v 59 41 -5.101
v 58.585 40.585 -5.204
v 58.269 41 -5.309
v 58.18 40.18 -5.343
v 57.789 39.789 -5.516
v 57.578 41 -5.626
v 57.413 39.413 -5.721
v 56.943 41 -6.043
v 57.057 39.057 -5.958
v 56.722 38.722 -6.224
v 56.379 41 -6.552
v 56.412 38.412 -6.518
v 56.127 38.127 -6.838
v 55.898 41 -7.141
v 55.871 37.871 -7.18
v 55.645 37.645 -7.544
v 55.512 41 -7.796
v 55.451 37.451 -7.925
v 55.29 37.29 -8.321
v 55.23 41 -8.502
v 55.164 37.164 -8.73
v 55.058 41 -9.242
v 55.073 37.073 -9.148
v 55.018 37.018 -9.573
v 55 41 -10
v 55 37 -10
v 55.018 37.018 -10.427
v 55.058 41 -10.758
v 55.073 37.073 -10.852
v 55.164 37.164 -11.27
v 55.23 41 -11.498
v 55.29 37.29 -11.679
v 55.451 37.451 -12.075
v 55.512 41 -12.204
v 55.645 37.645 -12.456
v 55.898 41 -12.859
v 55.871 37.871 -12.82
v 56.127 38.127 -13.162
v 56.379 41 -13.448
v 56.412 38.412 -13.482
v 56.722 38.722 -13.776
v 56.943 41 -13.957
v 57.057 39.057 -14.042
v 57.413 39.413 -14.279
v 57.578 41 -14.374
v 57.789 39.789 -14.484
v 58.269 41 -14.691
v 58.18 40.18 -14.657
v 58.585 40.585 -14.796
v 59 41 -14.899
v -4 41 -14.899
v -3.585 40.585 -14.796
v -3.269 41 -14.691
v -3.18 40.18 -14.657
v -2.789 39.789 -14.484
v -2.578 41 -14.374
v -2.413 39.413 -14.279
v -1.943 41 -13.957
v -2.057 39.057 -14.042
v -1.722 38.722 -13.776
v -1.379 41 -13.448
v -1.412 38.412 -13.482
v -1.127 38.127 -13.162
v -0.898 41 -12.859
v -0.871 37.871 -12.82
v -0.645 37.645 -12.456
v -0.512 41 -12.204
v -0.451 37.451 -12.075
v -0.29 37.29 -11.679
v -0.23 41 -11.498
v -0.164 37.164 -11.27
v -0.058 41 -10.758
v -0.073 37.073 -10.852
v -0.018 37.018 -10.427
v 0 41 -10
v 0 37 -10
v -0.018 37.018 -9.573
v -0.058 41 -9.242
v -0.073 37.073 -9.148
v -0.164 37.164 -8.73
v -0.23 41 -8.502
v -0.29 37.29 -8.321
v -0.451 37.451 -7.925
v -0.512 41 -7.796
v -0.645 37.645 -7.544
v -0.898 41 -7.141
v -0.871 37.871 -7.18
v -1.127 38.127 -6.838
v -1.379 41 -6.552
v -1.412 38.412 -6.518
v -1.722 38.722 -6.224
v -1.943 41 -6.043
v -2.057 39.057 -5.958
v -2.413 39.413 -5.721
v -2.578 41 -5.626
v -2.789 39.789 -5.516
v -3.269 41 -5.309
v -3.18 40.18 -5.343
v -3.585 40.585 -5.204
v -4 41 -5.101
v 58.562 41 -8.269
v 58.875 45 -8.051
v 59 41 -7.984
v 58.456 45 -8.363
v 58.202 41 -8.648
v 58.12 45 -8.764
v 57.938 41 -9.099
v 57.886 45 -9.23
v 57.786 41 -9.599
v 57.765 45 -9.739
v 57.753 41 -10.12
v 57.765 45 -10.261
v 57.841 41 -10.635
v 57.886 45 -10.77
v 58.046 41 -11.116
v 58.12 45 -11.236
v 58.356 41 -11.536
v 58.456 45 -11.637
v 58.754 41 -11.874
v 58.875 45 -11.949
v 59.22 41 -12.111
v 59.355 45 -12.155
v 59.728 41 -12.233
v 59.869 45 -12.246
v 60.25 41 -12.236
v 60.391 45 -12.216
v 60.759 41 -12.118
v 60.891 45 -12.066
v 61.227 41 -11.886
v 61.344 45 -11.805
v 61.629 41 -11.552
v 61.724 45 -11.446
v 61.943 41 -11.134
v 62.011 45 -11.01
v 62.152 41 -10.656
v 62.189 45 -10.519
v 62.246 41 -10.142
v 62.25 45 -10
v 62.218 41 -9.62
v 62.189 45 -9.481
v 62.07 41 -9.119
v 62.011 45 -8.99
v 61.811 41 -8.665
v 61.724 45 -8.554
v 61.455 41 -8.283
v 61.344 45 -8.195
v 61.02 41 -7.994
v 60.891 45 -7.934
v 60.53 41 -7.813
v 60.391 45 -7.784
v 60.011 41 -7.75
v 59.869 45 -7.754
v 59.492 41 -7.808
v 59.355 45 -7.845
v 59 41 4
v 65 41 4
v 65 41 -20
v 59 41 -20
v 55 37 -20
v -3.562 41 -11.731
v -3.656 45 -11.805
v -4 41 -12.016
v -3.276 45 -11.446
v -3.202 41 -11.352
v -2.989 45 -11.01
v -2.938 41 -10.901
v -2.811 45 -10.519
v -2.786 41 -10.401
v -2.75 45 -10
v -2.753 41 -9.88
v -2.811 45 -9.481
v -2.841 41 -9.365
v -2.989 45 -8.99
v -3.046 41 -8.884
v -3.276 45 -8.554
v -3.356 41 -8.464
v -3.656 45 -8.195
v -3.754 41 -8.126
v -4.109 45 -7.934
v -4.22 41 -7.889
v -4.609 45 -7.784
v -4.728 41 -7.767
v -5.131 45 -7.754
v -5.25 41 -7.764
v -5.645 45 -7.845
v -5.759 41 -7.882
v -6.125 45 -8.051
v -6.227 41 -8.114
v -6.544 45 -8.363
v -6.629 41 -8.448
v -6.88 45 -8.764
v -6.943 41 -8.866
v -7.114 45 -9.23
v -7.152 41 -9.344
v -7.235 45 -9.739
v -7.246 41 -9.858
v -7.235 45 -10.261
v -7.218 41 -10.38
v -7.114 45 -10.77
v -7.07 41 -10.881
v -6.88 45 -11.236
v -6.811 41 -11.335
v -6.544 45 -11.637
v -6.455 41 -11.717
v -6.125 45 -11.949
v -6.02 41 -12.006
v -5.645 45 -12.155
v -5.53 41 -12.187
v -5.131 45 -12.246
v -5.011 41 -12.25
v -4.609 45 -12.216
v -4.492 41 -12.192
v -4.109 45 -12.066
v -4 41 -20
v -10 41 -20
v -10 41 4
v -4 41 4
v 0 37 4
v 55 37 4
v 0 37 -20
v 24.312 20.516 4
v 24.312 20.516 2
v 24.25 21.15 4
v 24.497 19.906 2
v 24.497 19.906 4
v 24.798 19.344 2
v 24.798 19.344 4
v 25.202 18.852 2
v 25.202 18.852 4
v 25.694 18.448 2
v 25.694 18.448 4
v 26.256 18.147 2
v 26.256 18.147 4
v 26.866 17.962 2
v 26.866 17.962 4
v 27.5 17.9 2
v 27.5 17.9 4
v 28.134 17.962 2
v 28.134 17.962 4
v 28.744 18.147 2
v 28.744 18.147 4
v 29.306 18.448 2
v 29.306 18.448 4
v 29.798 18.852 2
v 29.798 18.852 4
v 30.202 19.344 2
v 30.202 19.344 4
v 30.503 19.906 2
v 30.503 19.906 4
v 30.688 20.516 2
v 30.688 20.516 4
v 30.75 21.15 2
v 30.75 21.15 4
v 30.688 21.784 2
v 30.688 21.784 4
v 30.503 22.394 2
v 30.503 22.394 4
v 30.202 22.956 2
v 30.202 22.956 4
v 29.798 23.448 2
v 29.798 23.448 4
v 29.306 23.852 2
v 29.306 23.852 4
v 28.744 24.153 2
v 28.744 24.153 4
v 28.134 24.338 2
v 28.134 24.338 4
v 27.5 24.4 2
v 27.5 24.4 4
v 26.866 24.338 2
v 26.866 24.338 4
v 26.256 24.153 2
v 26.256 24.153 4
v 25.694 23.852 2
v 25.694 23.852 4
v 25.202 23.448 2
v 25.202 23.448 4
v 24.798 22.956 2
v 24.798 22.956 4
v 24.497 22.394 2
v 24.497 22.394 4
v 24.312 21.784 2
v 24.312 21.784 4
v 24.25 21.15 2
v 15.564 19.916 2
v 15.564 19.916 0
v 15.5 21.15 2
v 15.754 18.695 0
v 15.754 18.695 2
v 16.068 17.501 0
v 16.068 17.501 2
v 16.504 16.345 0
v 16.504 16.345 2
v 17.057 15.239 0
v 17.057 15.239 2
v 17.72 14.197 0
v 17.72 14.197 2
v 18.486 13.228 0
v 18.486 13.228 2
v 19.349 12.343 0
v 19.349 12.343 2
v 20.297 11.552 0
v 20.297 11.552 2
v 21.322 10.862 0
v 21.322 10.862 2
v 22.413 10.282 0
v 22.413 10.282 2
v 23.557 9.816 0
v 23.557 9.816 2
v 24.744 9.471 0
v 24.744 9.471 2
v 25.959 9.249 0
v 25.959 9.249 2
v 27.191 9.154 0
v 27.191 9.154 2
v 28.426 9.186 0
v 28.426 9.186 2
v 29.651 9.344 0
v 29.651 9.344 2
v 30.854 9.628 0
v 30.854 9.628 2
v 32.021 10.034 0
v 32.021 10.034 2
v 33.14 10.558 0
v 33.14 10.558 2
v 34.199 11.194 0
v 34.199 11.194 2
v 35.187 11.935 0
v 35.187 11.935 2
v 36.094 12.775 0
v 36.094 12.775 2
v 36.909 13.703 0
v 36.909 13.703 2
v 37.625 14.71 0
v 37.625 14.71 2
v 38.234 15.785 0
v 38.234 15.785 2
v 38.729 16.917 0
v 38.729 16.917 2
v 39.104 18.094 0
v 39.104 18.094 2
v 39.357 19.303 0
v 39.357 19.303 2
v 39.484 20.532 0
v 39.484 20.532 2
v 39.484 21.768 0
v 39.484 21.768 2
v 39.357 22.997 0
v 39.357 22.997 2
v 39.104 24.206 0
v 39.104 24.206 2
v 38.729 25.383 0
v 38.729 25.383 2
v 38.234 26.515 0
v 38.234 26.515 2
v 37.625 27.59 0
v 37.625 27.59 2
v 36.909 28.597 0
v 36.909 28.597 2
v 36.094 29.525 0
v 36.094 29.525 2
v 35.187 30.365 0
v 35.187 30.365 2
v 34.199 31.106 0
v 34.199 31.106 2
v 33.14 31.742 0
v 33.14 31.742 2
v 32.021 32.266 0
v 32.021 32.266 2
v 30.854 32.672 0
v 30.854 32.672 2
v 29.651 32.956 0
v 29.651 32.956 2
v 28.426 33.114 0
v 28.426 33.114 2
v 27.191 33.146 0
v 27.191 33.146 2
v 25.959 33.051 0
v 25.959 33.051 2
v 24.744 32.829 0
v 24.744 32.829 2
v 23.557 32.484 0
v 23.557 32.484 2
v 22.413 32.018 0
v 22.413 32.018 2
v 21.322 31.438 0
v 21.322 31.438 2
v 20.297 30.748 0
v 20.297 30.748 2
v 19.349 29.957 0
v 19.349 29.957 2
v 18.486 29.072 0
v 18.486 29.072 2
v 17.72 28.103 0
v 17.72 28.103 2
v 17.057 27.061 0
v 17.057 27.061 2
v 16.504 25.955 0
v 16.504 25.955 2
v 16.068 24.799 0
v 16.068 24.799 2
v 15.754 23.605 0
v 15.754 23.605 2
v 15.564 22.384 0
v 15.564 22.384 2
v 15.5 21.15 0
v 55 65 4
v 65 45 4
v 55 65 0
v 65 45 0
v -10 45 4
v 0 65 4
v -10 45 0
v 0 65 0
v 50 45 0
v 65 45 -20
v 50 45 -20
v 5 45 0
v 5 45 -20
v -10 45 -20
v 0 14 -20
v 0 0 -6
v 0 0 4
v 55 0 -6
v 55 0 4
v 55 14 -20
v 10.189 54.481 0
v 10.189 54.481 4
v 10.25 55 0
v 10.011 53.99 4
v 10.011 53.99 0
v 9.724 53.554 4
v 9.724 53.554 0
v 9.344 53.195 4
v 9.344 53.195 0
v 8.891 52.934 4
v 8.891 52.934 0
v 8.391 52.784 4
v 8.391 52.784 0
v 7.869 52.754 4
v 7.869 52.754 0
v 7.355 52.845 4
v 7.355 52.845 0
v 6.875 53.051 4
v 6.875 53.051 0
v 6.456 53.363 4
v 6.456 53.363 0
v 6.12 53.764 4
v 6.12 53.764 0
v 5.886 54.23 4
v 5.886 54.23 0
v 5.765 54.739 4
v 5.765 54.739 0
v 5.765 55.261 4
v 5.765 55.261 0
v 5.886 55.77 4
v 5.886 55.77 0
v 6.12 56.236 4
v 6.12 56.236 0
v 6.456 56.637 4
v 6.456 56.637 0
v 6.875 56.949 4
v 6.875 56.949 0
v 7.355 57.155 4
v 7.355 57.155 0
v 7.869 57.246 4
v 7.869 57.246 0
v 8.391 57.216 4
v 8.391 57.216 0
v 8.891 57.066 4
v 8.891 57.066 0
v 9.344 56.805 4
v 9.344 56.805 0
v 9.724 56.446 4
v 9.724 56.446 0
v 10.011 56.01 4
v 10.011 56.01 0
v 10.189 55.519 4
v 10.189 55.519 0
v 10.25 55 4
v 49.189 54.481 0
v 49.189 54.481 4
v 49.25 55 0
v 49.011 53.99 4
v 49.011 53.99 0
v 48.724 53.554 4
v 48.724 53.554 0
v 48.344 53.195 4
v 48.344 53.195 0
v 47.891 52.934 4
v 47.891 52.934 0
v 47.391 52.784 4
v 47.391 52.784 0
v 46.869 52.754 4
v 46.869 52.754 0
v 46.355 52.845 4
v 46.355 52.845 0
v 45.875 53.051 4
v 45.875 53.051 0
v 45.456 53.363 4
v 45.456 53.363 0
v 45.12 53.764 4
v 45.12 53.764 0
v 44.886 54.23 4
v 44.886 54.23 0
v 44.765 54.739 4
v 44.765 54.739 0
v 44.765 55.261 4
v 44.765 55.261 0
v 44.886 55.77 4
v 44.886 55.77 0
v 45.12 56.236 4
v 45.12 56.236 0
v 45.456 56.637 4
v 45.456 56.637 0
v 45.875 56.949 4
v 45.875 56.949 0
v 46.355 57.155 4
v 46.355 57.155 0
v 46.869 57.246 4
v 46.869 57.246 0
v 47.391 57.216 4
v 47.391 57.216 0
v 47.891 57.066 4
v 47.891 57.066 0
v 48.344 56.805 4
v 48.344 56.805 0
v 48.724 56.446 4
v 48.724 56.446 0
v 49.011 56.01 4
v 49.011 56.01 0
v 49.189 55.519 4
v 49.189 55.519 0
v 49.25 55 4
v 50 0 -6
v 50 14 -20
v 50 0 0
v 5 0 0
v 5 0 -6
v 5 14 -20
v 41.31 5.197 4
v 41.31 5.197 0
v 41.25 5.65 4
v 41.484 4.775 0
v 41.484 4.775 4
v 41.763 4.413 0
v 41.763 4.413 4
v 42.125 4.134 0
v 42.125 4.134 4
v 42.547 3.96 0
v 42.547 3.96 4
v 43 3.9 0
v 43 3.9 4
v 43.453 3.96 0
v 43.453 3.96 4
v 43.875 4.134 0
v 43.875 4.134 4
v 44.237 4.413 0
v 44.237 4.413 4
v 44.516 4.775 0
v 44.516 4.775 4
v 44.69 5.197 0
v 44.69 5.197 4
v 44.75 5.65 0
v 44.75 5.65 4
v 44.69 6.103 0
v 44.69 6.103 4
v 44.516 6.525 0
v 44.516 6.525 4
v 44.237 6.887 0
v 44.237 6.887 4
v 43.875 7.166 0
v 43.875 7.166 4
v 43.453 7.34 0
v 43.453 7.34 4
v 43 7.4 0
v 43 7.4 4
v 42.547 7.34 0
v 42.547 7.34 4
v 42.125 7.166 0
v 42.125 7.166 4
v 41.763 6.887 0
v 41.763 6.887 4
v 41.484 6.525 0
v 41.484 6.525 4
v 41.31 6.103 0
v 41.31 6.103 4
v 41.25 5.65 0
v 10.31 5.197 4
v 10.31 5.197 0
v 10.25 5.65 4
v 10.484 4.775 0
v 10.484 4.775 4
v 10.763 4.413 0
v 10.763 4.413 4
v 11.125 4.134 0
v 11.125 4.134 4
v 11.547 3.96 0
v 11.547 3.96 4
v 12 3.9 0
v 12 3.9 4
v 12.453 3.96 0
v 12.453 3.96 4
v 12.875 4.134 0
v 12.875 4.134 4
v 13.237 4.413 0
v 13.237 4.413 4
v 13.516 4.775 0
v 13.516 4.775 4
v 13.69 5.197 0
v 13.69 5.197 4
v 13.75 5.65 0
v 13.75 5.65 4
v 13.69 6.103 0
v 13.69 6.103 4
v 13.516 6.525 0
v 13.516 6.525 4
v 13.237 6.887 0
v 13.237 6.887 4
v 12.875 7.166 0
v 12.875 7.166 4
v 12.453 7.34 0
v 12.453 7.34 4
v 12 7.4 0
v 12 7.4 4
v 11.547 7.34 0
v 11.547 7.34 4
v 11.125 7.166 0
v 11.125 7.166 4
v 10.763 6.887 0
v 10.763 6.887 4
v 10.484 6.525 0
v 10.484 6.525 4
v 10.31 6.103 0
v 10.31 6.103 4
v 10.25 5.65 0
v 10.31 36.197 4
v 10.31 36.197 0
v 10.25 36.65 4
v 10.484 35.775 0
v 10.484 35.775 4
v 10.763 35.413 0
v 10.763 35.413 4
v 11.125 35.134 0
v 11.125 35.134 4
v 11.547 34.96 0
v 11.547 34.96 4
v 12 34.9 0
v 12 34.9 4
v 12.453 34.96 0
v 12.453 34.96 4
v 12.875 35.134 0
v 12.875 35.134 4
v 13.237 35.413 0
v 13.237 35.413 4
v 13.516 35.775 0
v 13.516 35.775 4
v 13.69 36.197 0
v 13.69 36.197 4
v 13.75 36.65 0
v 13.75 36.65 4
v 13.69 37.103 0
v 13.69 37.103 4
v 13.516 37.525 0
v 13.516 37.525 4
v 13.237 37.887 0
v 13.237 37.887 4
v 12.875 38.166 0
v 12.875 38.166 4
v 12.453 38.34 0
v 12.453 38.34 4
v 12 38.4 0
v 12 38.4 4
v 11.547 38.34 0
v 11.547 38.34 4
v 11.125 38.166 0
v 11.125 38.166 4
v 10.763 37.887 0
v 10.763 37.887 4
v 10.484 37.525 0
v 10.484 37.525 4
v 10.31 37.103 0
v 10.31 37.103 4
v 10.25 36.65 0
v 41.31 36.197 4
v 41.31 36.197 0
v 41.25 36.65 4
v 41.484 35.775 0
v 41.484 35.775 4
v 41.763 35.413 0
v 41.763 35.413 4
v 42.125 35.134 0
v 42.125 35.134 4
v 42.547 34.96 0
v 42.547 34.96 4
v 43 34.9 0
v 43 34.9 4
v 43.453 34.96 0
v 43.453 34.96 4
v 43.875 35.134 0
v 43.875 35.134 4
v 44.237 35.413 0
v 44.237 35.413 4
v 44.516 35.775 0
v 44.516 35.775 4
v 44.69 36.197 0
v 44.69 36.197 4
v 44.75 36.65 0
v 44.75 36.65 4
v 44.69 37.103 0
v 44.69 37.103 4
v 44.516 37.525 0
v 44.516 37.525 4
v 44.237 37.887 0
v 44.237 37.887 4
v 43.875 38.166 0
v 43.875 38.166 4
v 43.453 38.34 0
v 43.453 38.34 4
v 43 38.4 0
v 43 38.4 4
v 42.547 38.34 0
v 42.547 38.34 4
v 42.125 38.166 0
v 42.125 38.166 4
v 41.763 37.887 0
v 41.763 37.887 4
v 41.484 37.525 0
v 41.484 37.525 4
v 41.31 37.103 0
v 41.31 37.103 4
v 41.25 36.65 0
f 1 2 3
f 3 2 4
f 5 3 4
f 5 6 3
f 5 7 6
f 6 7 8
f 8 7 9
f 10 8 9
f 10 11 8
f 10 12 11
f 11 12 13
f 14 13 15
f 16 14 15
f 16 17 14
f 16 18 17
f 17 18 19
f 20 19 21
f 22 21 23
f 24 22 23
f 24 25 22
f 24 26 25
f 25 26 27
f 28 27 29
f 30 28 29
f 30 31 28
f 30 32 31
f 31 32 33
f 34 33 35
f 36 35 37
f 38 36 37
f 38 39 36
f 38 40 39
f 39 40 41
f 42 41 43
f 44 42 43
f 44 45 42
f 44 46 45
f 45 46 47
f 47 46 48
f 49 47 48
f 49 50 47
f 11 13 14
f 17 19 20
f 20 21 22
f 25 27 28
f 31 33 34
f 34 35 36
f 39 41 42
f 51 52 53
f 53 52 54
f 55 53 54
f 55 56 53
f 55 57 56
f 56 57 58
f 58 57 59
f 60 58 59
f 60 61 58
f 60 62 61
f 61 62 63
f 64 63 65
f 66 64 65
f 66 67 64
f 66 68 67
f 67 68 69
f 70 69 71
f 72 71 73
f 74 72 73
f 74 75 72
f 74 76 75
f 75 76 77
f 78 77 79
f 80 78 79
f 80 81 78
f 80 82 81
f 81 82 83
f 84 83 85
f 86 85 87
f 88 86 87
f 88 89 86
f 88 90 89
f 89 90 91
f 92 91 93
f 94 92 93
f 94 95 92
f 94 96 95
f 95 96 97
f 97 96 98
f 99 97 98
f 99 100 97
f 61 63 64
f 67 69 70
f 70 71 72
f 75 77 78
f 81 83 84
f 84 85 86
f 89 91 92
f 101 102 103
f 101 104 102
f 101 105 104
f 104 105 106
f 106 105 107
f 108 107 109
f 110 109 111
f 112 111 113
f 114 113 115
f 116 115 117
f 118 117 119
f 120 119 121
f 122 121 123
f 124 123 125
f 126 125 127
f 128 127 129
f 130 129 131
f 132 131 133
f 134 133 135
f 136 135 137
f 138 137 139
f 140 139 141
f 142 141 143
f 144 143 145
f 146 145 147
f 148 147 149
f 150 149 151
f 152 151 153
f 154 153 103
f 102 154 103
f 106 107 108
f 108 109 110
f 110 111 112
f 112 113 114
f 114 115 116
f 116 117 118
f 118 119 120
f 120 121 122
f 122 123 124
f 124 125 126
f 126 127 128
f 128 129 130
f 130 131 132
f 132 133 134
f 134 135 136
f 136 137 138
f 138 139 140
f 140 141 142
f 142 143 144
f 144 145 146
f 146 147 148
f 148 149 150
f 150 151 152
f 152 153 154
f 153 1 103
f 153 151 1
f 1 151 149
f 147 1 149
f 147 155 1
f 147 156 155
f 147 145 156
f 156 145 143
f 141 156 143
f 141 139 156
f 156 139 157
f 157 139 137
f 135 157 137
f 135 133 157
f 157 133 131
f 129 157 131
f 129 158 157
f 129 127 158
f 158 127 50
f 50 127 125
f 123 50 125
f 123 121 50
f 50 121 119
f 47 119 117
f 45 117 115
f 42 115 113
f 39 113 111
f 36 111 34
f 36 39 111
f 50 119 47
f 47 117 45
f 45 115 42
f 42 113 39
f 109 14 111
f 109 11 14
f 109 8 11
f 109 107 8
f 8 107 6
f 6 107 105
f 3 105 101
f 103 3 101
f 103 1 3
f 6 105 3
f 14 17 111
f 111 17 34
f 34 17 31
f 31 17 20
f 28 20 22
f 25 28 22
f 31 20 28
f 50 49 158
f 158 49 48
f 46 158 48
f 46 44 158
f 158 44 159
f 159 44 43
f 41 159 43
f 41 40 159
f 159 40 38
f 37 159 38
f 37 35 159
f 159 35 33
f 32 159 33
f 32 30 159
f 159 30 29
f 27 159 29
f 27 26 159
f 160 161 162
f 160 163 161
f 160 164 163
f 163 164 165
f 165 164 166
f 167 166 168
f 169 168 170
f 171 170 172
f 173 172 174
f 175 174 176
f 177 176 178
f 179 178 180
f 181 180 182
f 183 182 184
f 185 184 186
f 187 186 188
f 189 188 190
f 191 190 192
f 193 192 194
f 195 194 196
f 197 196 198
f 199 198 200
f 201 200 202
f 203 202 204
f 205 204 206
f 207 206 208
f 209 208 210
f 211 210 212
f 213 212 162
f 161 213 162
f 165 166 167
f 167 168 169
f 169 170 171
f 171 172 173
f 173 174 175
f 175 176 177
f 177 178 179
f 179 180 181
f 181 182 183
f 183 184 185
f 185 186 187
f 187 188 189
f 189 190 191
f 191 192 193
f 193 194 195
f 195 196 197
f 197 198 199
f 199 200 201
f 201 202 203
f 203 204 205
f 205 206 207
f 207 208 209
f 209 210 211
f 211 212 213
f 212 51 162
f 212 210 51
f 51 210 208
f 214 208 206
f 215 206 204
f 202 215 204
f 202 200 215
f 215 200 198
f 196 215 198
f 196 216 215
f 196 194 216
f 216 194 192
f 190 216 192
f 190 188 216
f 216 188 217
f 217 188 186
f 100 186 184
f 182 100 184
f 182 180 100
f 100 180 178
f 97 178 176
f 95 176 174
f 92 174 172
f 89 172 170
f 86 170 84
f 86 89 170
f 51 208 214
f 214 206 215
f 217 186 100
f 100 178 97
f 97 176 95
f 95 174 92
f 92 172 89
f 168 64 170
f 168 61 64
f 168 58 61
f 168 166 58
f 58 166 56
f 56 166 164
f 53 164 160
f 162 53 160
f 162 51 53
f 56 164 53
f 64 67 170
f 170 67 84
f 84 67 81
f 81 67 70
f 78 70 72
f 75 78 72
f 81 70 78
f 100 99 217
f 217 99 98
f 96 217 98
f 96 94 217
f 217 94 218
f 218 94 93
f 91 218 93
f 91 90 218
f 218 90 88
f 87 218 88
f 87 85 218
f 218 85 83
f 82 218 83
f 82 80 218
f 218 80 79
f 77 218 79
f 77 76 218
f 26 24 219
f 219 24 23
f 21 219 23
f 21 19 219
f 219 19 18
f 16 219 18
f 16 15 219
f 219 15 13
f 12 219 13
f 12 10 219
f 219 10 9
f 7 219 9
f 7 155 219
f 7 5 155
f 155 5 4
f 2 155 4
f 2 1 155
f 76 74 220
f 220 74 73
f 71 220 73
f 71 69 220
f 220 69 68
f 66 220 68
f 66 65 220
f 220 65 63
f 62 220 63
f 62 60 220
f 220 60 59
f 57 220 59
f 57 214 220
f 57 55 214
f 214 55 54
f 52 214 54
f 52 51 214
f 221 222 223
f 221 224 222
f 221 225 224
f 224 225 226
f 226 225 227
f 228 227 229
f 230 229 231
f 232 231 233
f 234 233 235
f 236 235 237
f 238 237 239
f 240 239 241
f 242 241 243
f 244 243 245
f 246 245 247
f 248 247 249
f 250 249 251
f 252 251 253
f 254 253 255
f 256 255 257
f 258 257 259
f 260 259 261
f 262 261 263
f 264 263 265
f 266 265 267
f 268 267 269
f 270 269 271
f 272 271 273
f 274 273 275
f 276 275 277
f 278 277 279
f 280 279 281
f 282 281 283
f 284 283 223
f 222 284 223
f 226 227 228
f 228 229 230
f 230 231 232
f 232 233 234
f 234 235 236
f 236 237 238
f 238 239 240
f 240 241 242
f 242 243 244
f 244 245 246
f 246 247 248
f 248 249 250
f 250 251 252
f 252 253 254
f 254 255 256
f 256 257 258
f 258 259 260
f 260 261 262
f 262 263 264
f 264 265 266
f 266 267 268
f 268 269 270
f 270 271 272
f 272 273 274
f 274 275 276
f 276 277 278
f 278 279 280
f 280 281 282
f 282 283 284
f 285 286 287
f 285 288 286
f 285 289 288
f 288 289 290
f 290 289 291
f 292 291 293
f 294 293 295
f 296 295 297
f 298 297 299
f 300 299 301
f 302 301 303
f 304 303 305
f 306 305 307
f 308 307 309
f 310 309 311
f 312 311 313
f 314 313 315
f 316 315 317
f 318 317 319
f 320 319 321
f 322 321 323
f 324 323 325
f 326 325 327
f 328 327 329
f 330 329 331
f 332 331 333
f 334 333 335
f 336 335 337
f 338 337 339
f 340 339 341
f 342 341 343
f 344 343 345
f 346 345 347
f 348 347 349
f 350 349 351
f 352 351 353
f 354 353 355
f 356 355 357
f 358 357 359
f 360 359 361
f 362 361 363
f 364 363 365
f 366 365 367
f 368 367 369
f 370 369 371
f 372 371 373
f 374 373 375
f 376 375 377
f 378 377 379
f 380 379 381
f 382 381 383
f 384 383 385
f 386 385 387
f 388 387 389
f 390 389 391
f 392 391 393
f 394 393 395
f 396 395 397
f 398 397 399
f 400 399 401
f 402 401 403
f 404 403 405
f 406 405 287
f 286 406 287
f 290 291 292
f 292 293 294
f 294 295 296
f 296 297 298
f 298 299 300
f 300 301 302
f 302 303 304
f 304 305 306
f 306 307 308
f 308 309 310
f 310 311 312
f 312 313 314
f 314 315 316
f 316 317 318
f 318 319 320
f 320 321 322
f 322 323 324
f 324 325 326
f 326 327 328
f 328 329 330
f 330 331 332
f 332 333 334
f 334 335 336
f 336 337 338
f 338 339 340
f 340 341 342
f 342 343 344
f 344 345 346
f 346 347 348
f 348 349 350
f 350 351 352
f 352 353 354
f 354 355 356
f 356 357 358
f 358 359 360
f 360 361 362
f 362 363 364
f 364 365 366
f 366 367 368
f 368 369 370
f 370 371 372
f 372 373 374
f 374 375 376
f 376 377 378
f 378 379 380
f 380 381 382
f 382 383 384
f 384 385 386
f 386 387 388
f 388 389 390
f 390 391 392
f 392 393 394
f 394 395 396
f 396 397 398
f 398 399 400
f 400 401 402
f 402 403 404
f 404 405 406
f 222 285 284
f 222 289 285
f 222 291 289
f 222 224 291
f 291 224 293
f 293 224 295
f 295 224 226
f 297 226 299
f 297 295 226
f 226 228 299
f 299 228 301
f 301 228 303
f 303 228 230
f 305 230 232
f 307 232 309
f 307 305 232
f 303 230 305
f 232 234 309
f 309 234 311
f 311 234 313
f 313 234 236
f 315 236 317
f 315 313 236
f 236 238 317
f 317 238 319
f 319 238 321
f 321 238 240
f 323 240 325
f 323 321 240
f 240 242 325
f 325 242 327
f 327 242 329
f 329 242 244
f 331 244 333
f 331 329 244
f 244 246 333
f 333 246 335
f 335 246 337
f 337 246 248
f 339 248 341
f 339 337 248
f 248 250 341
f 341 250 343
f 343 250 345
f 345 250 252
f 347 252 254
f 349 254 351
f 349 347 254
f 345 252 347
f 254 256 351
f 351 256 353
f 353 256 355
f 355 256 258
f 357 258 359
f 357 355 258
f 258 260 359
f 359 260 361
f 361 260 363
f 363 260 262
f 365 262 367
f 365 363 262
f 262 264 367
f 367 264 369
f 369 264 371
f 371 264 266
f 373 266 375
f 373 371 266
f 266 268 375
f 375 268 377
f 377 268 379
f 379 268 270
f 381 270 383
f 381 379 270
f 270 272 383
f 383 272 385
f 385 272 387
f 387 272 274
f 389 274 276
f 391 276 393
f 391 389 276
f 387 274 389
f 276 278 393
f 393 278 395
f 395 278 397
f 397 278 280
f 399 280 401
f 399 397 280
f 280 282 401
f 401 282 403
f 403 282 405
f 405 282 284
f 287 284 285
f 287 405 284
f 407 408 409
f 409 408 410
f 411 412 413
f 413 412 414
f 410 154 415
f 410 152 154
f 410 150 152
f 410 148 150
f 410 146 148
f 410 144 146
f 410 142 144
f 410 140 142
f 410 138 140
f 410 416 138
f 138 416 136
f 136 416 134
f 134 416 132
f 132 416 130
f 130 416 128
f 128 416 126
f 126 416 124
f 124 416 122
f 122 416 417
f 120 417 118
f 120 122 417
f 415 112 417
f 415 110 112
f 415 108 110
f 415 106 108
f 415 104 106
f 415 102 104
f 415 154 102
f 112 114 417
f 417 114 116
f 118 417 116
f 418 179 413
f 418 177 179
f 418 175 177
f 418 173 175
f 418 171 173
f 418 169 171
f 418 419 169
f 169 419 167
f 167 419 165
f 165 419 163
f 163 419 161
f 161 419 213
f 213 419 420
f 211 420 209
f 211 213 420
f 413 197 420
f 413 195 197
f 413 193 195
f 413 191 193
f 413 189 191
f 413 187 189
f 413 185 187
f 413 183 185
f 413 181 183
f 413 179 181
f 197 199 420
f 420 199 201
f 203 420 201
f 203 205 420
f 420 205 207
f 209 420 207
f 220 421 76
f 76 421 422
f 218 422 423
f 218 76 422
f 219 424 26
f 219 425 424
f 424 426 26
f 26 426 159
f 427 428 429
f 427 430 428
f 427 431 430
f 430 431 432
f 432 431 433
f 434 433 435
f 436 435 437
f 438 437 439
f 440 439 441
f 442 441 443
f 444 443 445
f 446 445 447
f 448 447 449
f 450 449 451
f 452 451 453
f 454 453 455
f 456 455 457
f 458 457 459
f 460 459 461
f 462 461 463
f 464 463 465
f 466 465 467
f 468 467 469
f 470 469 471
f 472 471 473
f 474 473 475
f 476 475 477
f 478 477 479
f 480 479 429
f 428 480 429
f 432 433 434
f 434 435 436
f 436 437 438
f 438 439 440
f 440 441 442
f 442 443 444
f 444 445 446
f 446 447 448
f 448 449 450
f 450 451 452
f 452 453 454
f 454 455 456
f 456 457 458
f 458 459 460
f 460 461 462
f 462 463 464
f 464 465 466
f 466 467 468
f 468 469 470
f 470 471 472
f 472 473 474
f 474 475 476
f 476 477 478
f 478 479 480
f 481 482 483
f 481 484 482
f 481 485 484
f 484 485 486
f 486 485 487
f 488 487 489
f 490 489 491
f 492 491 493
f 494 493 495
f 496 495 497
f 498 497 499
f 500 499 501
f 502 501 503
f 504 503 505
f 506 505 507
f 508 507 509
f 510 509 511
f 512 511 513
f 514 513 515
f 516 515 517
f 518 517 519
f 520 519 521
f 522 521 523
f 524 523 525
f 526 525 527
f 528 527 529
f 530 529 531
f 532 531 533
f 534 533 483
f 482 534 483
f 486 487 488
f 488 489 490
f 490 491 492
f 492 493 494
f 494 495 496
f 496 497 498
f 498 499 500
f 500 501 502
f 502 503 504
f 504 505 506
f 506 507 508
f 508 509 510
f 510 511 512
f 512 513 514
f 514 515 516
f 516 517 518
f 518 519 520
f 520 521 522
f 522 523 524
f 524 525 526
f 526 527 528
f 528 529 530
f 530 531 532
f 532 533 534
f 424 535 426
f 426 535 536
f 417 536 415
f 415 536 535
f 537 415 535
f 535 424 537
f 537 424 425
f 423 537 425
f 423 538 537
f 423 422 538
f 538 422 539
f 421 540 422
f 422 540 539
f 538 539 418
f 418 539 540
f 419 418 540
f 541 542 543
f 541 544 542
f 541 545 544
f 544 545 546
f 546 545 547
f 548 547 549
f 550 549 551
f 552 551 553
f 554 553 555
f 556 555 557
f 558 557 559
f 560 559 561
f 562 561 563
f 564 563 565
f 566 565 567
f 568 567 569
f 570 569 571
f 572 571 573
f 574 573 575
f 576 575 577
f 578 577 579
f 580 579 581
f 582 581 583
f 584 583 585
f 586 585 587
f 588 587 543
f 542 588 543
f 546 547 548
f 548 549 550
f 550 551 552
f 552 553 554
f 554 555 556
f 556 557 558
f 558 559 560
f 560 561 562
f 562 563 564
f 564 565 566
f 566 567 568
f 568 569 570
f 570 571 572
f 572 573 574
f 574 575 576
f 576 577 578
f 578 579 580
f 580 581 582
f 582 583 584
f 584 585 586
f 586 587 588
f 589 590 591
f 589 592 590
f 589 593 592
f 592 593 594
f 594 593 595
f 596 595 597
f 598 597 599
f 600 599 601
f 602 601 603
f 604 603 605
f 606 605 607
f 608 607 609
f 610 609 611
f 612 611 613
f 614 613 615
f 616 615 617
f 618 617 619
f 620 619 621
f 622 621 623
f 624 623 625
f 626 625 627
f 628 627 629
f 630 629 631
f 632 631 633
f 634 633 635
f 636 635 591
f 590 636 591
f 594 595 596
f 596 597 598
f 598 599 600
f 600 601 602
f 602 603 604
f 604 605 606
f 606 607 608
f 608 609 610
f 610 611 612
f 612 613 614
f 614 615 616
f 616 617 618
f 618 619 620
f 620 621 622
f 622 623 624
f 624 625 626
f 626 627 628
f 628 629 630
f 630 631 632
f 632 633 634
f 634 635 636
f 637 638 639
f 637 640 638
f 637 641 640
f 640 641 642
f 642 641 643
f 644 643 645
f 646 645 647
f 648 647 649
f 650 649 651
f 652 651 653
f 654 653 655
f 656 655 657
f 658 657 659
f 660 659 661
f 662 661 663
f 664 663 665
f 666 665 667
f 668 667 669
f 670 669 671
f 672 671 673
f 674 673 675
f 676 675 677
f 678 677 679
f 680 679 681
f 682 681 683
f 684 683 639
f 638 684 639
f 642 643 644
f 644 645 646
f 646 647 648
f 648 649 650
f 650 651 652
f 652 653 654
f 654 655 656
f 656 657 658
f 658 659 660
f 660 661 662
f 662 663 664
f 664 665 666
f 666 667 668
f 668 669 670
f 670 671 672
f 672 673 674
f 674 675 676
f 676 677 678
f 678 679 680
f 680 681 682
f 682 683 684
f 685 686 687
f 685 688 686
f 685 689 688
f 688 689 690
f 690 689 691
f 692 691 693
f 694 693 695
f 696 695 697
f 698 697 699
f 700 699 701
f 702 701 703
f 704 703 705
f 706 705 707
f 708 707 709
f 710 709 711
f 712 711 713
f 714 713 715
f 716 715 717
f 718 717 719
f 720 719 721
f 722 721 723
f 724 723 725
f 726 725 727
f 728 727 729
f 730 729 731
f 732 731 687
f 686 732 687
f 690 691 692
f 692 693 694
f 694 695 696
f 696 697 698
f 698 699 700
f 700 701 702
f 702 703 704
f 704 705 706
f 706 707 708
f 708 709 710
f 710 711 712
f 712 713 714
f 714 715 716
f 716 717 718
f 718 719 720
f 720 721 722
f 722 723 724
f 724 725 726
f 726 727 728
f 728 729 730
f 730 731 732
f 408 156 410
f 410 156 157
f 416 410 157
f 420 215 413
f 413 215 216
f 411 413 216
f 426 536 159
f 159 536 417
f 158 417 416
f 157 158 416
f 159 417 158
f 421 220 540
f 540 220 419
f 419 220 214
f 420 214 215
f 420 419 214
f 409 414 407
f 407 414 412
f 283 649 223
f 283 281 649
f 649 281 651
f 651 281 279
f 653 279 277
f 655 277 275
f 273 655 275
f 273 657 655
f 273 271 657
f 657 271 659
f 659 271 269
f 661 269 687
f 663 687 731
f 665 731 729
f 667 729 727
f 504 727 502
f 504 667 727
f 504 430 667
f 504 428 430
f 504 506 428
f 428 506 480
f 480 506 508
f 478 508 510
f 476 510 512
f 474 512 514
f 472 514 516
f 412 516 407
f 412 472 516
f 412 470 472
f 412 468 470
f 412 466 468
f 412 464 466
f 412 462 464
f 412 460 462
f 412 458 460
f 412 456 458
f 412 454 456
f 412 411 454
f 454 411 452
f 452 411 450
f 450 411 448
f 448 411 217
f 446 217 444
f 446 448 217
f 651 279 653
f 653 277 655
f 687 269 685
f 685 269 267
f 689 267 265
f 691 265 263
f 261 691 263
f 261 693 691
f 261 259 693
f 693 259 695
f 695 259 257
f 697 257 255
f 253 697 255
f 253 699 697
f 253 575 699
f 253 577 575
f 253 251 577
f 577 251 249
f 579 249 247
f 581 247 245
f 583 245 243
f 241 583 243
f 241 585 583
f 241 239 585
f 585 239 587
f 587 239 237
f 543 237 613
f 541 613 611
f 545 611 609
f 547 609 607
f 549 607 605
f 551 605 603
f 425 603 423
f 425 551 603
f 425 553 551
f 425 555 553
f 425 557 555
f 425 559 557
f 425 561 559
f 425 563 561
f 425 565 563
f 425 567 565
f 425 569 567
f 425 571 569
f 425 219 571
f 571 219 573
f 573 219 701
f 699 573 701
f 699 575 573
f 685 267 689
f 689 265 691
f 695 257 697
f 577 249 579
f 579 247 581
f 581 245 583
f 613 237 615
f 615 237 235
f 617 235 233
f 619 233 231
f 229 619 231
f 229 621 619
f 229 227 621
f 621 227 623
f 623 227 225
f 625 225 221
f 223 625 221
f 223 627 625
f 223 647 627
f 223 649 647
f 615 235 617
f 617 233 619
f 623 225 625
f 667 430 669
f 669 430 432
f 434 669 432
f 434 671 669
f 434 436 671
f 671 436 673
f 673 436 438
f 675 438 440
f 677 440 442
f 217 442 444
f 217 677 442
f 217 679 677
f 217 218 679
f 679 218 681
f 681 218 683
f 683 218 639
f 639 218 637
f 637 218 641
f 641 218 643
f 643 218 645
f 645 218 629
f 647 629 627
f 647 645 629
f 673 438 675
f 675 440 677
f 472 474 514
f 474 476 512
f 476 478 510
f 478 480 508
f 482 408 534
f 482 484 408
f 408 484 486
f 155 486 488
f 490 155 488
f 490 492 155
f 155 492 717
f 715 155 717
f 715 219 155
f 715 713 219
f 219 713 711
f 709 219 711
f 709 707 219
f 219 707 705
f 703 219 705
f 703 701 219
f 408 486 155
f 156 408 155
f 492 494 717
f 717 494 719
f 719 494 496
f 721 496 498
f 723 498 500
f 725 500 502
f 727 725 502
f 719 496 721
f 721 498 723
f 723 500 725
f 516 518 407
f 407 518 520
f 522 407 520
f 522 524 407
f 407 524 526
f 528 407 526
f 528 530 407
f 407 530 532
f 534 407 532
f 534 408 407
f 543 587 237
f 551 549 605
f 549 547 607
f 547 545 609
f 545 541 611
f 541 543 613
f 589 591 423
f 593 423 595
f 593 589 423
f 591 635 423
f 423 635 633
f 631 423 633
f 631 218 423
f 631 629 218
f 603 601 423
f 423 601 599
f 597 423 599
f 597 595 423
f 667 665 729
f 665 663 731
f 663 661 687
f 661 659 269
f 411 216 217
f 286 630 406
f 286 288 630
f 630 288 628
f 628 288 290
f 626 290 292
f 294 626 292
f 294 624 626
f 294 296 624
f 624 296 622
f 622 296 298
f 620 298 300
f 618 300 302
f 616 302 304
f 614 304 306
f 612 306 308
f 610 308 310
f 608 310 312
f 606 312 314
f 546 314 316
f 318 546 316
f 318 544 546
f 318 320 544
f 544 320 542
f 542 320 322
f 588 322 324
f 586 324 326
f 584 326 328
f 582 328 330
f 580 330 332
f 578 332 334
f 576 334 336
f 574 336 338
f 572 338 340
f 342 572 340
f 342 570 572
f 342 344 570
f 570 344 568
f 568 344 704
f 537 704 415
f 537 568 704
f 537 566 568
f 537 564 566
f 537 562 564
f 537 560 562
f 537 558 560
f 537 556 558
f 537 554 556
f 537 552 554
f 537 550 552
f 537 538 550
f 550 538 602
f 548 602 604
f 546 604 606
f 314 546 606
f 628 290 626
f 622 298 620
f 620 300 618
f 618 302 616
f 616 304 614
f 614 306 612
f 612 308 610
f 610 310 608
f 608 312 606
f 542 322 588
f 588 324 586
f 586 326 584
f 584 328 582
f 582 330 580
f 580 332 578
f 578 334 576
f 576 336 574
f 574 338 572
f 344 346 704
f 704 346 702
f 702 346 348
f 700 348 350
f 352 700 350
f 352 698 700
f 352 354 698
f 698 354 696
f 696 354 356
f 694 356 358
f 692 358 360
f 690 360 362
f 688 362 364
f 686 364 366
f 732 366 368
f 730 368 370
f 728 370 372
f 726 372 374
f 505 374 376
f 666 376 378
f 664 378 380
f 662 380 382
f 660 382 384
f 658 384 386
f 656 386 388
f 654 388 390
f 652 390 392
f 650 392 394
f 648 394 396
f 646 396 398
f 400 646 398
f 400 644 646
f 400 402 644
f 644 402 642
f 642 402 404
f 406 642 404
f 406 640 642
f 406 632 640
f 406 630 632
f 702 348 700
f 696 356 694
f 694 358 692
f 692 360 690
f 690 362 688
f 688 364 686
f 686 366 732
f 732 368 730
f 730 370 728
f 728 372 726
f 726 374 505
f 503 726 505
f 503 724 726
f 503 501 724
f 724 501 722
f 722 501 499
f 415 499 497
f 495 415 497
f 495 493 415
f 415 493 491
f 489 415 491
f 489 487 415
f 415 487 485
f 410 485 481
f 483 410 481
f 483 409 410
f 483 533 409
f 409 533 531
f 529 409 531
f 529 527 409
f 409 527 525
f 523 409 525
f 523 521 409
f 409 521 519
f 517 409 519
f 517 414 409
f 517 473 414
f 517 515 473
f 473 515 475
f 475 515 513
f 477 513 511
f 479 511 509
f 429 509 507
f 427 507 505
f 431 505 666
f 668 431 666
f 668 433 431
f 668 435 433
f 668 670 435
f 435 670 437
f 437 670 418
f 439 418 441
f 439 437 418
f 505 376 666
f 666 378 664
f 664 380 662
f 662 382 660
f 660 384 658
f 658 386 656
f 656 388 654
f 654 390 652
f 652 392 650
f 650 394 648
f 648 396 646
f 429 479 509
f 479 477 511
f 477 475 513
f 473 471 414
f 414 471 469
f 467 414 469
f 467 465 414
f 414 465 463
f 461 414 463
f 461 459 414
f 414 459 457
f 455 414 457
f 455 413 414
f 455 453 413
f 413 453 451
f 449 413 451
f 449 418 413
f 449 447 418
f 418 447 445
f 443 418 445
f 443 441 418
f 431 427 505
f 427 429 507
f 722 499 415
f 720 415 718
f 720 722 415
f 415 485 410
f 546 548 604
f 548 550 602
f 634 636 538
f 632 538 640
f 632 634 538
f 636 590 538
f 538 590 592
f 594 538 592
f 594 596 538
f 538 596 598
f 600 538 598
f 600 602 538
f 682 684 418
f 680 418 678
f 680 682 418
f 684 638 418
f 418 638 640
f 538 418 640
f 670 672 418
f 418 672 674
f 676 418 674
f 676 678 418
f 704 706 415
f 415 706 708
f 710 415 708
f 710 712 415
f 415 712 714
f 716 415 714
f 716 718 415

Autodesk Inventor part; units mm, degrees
ref_plane "YZ Plane" through (0, 0, 0) normal (1, 0, 0) x (0, 1, 0)
ref_plane "XZ Plane" through (0, 0, 0) normal (0, 1, 0) x (-1, 0, 0)
ref_plane "XY Plane" through (0, 0, 0) normal (0, 0, 1) x (1, 0, 0)
sketch "Sketch1" plane through (0, 0, 0) normal (0, 0, 1) x (1, 0, 0)
  line L0 (0, 0) -> (55, 0)
  line L1 (55, 0) -> (55, 65)
  line L2 (55, 65) -> (0, 65)
  line L3 (0, 65) -> (0, 0)
  dimension "d0" = 55
  dimension "d1" = 65
extrude "Extrusion1" add sketch "Sketch1" along normal blind 4
sketch "Sketch2" plane through (0, 0, 0) normal (0, 0, -1) x (-1, 0, 0)
  line L0 (0, 0) -> (-55, 0) projected
  line L1 (-55, 65) -> (0, 65) projected
  line L2 (-55, 0) -> (-55, 65) projected
  line L3 (0, 65) -> (0, 0) projected
  line L4 (0, 45) -> (-5, 45)
  line L5 (-5, 45) -> (-5, 0)
  line L6 (-55, 45) -> (-50, 45)
  line L7 (-50, 45) -> (-50, 0)
  dimension "d4" = 5
  dimension "d5" = 20
extrude "Extrusion2" add sketch "Sketch2" along normal blind 20 contours L0 L5 L4 L3 | L0 L2 L6 L7
sketch "Sketch3" plane through (0, 0, 4) normal (-1, 0, 0) x (0, 0, 1)
  line L0 (-4, 65) -> (-4, 45) projected
  line L1 (-4, 45) -> (-24, 45) projected
  line L2 (-4, 45) -> (-4, 41)
  line L3 (-4, 41) -> (-24, 41)
  line L4 (-24, 45) -> (-24, 0) projected
  point P0 (-4, 0)
  dimension "d8" = 4
extrude "Extrusion3" add sketch "Sketch3" along normal blind 10
sketch "Sketch4" plane through (55, 0, 4) normal (1, 0, 0) x (0, 0, -1)
  line L0 (24, 45) -> (24, 0) projected
  line L1 (4, 45) -> (24, 45) projected
  line L2 (4, 41) -> (24, 41) projected
  line L3 (4, 41) -> (4, 45) projected
  point P0 (4, 0)
extrude "Extrusion4" add sketch "Sketch4" along normal blind 10
sketch "Sketch5" plane through (0, 0, 0) normal (0, 0, -1) x (-1, 0, 0)
  line L0 (-5, 0) -> (-50, 0) projected
  line L1 (-5, 0) -> (-5, 45) projected
  circle A0 centre (-12, 5.65) radius 1.75
  circle A1 centre (-12, 36.65) radius 1.75
  circle A2 centre (-43, 5.65) radius 1.75
  circle A3 centre (-43, 36.65) radius 1.75
  point P0 (0, 0)
  dimension "d13" = 3.5
  dimension "d14" = 31
  dimension "d15" = 31
  dimension "d16" = 7
  dimension "d17" = 5.65
extrude "Extrusion5" cut sketch "Sketch5" against normal up to next
chamfer "Chamfer1" distance 14 angle 45 2 edges at (2.5, 0, -20) (52.5, 0, -20)
sketch "Sketch6" plane through (0, 0, 4) normal (0, 0, 1) x (1, 0, 0)
  line L0 (55, 0) -> (55, 65) projected
  line L1 (55, 65) -> (0, 65) projected
  line L2 (0, 65) -> (0, 0) projected
  circle A0 centre (8, 55) radius 2.25
  circle A1 centre (47, 55) radius 2.25
  dimension "d23" = 4.5
  dimension "d24" = 10
  dimension "d25" = 8
  dimension "d26" = 8
extrude "Extrusion6" cut sketch "Sketch6" against normal up to next
sketch "Sketch7" plane through (0, 41, -20) normal (0, -1, 0) x (1, 0, 0)
  line L0 (0, 20) -> (-10, 20) projected
  line L1 (-10, 0) -> (-10, 20) projected
  line L2 (55, 0) -> (55, 20) projected
  line L3 (55, 0) -> (65, 0) projected
  line L4 (65, 20) -> (65, 0) projected
  line L5 (55, 20) -> (65, 20) projected
  circle A0 centre (-5, 10) radius 2.25
  circle A1 centre (60, 10) radius 2.25
  dimension "d29" = 4.5
  dimension "d30" = 5
  dimension "d31" = 10
  dimension "d32" = 5
extrude "Extrusion7" cut sketch "Sketch7" against normal up to next contours A0 | A1
sketch "Sketch8" plane through (0, 41, 0) normal (0, 0, 1) x (1, 0, 0)
  line L0 (0, 4) -> (0, 0) projected
  line L1 (0, 4) -> (-10, 4) projected
  line L2 (-10, 0) -> (-10, 4) projected
  line L3 (0, 0) -> (-10, 0) projected
  line L4 (55, 0) -> (55, 4) projected
  line L5 (55, 0) -> (65, 0) projected
  line L6 (65, 4) -> (65, 0) projected
  line L7 (55, 4) -> (65, 4) projected
  point P0 (0, -41)
extrude "Extrusion8" add sketch "Sketch8" along normal up to surface (4 mm away)
sketch "Sketch9" plane through (0, 0, 4) normal (0, 0, 1) x (1, 0, 0)
  line L0 (55, 45) -> (65, 45) projected
  line L1 (55, 45) -> (55, 65) projected
  line L2 (0, 65) -> (0, 45) projected
  line L3 (-10, 45) -> (0, 45) projected
  line L4 (55, 65) -> (65, 45)
  line L5 (0, 65) -> (-10, 45)
extrude "Extrusion9" add sketch "Sketch9" against normal blind 4
sketch "Sketch10" plane through (0, 0, 0) normal (0, 0, -1) x (-1, 0, 0)
  circle A0 centre (-43, 5.65) radius 1.75 projected
  circle A1 centre (-27.5, 21.15) radius 12
  point P0 (0, 0)
  dimension "d39" = 24
  dimension "d40" = 15.5
  dimension "d41" = 15.5
extrude "Extrusion10" cut sketch "Sketch10" against normal blind 2 contours A1
sketch "Sketch11" plane through (27.5, 21.15, 2) normal (0, 0, -1) x (-1, 0, 0)
  circle A0 centre (0, 0) radius 12 projected
  circle A1 centre (0, 0) radius 3.25
  point P0 (27.5, -21.15)
  dimension "d44" = 6.5
extrude "Extrusion11" cut sketch "Sketch11" against normal up to next contours A1
chamfer "Chamfer2" distance 4 angle 45 2 edges at (0, 41, -8) (55, 41, -8)
sketch "Sketch12" plane through (-10, 41, -20) normal (0, -1, 0) x (1, 0, 0)
  arc A0 (6, 12.0156) -> (6, 7.9844) centre (5, 10) ccw projected
  line L0 (69, 12.0156) -> (69, 24) projected
  arc A1 (69, 7.9844) -> (69, 12.0156) centre (70, 10) ccw projected
  line L1 (69, 0) -> (69, 7.9844) projected
  line L2 (69, 0) -> (75, 0) projected
  line L3 (75, 0) -> (75, 24) projected
  line L4 (75, 24) -> (69, 24) projected
  circle A2 centre (5, 10) radius 5
  circle A3 centre (70, 10) radius 5
  point P0 (10, 20)
  dimension "d50" = 10
  dimension "d51" = 10
extrude "Extrusion12" cut sketch "Sketch12" along normal blind 7.5 contours A1 L1 A3 L0 | L0 A3 L1 A1 | A2
properties part number "ZMotorMount" material "ABS Plastic"
